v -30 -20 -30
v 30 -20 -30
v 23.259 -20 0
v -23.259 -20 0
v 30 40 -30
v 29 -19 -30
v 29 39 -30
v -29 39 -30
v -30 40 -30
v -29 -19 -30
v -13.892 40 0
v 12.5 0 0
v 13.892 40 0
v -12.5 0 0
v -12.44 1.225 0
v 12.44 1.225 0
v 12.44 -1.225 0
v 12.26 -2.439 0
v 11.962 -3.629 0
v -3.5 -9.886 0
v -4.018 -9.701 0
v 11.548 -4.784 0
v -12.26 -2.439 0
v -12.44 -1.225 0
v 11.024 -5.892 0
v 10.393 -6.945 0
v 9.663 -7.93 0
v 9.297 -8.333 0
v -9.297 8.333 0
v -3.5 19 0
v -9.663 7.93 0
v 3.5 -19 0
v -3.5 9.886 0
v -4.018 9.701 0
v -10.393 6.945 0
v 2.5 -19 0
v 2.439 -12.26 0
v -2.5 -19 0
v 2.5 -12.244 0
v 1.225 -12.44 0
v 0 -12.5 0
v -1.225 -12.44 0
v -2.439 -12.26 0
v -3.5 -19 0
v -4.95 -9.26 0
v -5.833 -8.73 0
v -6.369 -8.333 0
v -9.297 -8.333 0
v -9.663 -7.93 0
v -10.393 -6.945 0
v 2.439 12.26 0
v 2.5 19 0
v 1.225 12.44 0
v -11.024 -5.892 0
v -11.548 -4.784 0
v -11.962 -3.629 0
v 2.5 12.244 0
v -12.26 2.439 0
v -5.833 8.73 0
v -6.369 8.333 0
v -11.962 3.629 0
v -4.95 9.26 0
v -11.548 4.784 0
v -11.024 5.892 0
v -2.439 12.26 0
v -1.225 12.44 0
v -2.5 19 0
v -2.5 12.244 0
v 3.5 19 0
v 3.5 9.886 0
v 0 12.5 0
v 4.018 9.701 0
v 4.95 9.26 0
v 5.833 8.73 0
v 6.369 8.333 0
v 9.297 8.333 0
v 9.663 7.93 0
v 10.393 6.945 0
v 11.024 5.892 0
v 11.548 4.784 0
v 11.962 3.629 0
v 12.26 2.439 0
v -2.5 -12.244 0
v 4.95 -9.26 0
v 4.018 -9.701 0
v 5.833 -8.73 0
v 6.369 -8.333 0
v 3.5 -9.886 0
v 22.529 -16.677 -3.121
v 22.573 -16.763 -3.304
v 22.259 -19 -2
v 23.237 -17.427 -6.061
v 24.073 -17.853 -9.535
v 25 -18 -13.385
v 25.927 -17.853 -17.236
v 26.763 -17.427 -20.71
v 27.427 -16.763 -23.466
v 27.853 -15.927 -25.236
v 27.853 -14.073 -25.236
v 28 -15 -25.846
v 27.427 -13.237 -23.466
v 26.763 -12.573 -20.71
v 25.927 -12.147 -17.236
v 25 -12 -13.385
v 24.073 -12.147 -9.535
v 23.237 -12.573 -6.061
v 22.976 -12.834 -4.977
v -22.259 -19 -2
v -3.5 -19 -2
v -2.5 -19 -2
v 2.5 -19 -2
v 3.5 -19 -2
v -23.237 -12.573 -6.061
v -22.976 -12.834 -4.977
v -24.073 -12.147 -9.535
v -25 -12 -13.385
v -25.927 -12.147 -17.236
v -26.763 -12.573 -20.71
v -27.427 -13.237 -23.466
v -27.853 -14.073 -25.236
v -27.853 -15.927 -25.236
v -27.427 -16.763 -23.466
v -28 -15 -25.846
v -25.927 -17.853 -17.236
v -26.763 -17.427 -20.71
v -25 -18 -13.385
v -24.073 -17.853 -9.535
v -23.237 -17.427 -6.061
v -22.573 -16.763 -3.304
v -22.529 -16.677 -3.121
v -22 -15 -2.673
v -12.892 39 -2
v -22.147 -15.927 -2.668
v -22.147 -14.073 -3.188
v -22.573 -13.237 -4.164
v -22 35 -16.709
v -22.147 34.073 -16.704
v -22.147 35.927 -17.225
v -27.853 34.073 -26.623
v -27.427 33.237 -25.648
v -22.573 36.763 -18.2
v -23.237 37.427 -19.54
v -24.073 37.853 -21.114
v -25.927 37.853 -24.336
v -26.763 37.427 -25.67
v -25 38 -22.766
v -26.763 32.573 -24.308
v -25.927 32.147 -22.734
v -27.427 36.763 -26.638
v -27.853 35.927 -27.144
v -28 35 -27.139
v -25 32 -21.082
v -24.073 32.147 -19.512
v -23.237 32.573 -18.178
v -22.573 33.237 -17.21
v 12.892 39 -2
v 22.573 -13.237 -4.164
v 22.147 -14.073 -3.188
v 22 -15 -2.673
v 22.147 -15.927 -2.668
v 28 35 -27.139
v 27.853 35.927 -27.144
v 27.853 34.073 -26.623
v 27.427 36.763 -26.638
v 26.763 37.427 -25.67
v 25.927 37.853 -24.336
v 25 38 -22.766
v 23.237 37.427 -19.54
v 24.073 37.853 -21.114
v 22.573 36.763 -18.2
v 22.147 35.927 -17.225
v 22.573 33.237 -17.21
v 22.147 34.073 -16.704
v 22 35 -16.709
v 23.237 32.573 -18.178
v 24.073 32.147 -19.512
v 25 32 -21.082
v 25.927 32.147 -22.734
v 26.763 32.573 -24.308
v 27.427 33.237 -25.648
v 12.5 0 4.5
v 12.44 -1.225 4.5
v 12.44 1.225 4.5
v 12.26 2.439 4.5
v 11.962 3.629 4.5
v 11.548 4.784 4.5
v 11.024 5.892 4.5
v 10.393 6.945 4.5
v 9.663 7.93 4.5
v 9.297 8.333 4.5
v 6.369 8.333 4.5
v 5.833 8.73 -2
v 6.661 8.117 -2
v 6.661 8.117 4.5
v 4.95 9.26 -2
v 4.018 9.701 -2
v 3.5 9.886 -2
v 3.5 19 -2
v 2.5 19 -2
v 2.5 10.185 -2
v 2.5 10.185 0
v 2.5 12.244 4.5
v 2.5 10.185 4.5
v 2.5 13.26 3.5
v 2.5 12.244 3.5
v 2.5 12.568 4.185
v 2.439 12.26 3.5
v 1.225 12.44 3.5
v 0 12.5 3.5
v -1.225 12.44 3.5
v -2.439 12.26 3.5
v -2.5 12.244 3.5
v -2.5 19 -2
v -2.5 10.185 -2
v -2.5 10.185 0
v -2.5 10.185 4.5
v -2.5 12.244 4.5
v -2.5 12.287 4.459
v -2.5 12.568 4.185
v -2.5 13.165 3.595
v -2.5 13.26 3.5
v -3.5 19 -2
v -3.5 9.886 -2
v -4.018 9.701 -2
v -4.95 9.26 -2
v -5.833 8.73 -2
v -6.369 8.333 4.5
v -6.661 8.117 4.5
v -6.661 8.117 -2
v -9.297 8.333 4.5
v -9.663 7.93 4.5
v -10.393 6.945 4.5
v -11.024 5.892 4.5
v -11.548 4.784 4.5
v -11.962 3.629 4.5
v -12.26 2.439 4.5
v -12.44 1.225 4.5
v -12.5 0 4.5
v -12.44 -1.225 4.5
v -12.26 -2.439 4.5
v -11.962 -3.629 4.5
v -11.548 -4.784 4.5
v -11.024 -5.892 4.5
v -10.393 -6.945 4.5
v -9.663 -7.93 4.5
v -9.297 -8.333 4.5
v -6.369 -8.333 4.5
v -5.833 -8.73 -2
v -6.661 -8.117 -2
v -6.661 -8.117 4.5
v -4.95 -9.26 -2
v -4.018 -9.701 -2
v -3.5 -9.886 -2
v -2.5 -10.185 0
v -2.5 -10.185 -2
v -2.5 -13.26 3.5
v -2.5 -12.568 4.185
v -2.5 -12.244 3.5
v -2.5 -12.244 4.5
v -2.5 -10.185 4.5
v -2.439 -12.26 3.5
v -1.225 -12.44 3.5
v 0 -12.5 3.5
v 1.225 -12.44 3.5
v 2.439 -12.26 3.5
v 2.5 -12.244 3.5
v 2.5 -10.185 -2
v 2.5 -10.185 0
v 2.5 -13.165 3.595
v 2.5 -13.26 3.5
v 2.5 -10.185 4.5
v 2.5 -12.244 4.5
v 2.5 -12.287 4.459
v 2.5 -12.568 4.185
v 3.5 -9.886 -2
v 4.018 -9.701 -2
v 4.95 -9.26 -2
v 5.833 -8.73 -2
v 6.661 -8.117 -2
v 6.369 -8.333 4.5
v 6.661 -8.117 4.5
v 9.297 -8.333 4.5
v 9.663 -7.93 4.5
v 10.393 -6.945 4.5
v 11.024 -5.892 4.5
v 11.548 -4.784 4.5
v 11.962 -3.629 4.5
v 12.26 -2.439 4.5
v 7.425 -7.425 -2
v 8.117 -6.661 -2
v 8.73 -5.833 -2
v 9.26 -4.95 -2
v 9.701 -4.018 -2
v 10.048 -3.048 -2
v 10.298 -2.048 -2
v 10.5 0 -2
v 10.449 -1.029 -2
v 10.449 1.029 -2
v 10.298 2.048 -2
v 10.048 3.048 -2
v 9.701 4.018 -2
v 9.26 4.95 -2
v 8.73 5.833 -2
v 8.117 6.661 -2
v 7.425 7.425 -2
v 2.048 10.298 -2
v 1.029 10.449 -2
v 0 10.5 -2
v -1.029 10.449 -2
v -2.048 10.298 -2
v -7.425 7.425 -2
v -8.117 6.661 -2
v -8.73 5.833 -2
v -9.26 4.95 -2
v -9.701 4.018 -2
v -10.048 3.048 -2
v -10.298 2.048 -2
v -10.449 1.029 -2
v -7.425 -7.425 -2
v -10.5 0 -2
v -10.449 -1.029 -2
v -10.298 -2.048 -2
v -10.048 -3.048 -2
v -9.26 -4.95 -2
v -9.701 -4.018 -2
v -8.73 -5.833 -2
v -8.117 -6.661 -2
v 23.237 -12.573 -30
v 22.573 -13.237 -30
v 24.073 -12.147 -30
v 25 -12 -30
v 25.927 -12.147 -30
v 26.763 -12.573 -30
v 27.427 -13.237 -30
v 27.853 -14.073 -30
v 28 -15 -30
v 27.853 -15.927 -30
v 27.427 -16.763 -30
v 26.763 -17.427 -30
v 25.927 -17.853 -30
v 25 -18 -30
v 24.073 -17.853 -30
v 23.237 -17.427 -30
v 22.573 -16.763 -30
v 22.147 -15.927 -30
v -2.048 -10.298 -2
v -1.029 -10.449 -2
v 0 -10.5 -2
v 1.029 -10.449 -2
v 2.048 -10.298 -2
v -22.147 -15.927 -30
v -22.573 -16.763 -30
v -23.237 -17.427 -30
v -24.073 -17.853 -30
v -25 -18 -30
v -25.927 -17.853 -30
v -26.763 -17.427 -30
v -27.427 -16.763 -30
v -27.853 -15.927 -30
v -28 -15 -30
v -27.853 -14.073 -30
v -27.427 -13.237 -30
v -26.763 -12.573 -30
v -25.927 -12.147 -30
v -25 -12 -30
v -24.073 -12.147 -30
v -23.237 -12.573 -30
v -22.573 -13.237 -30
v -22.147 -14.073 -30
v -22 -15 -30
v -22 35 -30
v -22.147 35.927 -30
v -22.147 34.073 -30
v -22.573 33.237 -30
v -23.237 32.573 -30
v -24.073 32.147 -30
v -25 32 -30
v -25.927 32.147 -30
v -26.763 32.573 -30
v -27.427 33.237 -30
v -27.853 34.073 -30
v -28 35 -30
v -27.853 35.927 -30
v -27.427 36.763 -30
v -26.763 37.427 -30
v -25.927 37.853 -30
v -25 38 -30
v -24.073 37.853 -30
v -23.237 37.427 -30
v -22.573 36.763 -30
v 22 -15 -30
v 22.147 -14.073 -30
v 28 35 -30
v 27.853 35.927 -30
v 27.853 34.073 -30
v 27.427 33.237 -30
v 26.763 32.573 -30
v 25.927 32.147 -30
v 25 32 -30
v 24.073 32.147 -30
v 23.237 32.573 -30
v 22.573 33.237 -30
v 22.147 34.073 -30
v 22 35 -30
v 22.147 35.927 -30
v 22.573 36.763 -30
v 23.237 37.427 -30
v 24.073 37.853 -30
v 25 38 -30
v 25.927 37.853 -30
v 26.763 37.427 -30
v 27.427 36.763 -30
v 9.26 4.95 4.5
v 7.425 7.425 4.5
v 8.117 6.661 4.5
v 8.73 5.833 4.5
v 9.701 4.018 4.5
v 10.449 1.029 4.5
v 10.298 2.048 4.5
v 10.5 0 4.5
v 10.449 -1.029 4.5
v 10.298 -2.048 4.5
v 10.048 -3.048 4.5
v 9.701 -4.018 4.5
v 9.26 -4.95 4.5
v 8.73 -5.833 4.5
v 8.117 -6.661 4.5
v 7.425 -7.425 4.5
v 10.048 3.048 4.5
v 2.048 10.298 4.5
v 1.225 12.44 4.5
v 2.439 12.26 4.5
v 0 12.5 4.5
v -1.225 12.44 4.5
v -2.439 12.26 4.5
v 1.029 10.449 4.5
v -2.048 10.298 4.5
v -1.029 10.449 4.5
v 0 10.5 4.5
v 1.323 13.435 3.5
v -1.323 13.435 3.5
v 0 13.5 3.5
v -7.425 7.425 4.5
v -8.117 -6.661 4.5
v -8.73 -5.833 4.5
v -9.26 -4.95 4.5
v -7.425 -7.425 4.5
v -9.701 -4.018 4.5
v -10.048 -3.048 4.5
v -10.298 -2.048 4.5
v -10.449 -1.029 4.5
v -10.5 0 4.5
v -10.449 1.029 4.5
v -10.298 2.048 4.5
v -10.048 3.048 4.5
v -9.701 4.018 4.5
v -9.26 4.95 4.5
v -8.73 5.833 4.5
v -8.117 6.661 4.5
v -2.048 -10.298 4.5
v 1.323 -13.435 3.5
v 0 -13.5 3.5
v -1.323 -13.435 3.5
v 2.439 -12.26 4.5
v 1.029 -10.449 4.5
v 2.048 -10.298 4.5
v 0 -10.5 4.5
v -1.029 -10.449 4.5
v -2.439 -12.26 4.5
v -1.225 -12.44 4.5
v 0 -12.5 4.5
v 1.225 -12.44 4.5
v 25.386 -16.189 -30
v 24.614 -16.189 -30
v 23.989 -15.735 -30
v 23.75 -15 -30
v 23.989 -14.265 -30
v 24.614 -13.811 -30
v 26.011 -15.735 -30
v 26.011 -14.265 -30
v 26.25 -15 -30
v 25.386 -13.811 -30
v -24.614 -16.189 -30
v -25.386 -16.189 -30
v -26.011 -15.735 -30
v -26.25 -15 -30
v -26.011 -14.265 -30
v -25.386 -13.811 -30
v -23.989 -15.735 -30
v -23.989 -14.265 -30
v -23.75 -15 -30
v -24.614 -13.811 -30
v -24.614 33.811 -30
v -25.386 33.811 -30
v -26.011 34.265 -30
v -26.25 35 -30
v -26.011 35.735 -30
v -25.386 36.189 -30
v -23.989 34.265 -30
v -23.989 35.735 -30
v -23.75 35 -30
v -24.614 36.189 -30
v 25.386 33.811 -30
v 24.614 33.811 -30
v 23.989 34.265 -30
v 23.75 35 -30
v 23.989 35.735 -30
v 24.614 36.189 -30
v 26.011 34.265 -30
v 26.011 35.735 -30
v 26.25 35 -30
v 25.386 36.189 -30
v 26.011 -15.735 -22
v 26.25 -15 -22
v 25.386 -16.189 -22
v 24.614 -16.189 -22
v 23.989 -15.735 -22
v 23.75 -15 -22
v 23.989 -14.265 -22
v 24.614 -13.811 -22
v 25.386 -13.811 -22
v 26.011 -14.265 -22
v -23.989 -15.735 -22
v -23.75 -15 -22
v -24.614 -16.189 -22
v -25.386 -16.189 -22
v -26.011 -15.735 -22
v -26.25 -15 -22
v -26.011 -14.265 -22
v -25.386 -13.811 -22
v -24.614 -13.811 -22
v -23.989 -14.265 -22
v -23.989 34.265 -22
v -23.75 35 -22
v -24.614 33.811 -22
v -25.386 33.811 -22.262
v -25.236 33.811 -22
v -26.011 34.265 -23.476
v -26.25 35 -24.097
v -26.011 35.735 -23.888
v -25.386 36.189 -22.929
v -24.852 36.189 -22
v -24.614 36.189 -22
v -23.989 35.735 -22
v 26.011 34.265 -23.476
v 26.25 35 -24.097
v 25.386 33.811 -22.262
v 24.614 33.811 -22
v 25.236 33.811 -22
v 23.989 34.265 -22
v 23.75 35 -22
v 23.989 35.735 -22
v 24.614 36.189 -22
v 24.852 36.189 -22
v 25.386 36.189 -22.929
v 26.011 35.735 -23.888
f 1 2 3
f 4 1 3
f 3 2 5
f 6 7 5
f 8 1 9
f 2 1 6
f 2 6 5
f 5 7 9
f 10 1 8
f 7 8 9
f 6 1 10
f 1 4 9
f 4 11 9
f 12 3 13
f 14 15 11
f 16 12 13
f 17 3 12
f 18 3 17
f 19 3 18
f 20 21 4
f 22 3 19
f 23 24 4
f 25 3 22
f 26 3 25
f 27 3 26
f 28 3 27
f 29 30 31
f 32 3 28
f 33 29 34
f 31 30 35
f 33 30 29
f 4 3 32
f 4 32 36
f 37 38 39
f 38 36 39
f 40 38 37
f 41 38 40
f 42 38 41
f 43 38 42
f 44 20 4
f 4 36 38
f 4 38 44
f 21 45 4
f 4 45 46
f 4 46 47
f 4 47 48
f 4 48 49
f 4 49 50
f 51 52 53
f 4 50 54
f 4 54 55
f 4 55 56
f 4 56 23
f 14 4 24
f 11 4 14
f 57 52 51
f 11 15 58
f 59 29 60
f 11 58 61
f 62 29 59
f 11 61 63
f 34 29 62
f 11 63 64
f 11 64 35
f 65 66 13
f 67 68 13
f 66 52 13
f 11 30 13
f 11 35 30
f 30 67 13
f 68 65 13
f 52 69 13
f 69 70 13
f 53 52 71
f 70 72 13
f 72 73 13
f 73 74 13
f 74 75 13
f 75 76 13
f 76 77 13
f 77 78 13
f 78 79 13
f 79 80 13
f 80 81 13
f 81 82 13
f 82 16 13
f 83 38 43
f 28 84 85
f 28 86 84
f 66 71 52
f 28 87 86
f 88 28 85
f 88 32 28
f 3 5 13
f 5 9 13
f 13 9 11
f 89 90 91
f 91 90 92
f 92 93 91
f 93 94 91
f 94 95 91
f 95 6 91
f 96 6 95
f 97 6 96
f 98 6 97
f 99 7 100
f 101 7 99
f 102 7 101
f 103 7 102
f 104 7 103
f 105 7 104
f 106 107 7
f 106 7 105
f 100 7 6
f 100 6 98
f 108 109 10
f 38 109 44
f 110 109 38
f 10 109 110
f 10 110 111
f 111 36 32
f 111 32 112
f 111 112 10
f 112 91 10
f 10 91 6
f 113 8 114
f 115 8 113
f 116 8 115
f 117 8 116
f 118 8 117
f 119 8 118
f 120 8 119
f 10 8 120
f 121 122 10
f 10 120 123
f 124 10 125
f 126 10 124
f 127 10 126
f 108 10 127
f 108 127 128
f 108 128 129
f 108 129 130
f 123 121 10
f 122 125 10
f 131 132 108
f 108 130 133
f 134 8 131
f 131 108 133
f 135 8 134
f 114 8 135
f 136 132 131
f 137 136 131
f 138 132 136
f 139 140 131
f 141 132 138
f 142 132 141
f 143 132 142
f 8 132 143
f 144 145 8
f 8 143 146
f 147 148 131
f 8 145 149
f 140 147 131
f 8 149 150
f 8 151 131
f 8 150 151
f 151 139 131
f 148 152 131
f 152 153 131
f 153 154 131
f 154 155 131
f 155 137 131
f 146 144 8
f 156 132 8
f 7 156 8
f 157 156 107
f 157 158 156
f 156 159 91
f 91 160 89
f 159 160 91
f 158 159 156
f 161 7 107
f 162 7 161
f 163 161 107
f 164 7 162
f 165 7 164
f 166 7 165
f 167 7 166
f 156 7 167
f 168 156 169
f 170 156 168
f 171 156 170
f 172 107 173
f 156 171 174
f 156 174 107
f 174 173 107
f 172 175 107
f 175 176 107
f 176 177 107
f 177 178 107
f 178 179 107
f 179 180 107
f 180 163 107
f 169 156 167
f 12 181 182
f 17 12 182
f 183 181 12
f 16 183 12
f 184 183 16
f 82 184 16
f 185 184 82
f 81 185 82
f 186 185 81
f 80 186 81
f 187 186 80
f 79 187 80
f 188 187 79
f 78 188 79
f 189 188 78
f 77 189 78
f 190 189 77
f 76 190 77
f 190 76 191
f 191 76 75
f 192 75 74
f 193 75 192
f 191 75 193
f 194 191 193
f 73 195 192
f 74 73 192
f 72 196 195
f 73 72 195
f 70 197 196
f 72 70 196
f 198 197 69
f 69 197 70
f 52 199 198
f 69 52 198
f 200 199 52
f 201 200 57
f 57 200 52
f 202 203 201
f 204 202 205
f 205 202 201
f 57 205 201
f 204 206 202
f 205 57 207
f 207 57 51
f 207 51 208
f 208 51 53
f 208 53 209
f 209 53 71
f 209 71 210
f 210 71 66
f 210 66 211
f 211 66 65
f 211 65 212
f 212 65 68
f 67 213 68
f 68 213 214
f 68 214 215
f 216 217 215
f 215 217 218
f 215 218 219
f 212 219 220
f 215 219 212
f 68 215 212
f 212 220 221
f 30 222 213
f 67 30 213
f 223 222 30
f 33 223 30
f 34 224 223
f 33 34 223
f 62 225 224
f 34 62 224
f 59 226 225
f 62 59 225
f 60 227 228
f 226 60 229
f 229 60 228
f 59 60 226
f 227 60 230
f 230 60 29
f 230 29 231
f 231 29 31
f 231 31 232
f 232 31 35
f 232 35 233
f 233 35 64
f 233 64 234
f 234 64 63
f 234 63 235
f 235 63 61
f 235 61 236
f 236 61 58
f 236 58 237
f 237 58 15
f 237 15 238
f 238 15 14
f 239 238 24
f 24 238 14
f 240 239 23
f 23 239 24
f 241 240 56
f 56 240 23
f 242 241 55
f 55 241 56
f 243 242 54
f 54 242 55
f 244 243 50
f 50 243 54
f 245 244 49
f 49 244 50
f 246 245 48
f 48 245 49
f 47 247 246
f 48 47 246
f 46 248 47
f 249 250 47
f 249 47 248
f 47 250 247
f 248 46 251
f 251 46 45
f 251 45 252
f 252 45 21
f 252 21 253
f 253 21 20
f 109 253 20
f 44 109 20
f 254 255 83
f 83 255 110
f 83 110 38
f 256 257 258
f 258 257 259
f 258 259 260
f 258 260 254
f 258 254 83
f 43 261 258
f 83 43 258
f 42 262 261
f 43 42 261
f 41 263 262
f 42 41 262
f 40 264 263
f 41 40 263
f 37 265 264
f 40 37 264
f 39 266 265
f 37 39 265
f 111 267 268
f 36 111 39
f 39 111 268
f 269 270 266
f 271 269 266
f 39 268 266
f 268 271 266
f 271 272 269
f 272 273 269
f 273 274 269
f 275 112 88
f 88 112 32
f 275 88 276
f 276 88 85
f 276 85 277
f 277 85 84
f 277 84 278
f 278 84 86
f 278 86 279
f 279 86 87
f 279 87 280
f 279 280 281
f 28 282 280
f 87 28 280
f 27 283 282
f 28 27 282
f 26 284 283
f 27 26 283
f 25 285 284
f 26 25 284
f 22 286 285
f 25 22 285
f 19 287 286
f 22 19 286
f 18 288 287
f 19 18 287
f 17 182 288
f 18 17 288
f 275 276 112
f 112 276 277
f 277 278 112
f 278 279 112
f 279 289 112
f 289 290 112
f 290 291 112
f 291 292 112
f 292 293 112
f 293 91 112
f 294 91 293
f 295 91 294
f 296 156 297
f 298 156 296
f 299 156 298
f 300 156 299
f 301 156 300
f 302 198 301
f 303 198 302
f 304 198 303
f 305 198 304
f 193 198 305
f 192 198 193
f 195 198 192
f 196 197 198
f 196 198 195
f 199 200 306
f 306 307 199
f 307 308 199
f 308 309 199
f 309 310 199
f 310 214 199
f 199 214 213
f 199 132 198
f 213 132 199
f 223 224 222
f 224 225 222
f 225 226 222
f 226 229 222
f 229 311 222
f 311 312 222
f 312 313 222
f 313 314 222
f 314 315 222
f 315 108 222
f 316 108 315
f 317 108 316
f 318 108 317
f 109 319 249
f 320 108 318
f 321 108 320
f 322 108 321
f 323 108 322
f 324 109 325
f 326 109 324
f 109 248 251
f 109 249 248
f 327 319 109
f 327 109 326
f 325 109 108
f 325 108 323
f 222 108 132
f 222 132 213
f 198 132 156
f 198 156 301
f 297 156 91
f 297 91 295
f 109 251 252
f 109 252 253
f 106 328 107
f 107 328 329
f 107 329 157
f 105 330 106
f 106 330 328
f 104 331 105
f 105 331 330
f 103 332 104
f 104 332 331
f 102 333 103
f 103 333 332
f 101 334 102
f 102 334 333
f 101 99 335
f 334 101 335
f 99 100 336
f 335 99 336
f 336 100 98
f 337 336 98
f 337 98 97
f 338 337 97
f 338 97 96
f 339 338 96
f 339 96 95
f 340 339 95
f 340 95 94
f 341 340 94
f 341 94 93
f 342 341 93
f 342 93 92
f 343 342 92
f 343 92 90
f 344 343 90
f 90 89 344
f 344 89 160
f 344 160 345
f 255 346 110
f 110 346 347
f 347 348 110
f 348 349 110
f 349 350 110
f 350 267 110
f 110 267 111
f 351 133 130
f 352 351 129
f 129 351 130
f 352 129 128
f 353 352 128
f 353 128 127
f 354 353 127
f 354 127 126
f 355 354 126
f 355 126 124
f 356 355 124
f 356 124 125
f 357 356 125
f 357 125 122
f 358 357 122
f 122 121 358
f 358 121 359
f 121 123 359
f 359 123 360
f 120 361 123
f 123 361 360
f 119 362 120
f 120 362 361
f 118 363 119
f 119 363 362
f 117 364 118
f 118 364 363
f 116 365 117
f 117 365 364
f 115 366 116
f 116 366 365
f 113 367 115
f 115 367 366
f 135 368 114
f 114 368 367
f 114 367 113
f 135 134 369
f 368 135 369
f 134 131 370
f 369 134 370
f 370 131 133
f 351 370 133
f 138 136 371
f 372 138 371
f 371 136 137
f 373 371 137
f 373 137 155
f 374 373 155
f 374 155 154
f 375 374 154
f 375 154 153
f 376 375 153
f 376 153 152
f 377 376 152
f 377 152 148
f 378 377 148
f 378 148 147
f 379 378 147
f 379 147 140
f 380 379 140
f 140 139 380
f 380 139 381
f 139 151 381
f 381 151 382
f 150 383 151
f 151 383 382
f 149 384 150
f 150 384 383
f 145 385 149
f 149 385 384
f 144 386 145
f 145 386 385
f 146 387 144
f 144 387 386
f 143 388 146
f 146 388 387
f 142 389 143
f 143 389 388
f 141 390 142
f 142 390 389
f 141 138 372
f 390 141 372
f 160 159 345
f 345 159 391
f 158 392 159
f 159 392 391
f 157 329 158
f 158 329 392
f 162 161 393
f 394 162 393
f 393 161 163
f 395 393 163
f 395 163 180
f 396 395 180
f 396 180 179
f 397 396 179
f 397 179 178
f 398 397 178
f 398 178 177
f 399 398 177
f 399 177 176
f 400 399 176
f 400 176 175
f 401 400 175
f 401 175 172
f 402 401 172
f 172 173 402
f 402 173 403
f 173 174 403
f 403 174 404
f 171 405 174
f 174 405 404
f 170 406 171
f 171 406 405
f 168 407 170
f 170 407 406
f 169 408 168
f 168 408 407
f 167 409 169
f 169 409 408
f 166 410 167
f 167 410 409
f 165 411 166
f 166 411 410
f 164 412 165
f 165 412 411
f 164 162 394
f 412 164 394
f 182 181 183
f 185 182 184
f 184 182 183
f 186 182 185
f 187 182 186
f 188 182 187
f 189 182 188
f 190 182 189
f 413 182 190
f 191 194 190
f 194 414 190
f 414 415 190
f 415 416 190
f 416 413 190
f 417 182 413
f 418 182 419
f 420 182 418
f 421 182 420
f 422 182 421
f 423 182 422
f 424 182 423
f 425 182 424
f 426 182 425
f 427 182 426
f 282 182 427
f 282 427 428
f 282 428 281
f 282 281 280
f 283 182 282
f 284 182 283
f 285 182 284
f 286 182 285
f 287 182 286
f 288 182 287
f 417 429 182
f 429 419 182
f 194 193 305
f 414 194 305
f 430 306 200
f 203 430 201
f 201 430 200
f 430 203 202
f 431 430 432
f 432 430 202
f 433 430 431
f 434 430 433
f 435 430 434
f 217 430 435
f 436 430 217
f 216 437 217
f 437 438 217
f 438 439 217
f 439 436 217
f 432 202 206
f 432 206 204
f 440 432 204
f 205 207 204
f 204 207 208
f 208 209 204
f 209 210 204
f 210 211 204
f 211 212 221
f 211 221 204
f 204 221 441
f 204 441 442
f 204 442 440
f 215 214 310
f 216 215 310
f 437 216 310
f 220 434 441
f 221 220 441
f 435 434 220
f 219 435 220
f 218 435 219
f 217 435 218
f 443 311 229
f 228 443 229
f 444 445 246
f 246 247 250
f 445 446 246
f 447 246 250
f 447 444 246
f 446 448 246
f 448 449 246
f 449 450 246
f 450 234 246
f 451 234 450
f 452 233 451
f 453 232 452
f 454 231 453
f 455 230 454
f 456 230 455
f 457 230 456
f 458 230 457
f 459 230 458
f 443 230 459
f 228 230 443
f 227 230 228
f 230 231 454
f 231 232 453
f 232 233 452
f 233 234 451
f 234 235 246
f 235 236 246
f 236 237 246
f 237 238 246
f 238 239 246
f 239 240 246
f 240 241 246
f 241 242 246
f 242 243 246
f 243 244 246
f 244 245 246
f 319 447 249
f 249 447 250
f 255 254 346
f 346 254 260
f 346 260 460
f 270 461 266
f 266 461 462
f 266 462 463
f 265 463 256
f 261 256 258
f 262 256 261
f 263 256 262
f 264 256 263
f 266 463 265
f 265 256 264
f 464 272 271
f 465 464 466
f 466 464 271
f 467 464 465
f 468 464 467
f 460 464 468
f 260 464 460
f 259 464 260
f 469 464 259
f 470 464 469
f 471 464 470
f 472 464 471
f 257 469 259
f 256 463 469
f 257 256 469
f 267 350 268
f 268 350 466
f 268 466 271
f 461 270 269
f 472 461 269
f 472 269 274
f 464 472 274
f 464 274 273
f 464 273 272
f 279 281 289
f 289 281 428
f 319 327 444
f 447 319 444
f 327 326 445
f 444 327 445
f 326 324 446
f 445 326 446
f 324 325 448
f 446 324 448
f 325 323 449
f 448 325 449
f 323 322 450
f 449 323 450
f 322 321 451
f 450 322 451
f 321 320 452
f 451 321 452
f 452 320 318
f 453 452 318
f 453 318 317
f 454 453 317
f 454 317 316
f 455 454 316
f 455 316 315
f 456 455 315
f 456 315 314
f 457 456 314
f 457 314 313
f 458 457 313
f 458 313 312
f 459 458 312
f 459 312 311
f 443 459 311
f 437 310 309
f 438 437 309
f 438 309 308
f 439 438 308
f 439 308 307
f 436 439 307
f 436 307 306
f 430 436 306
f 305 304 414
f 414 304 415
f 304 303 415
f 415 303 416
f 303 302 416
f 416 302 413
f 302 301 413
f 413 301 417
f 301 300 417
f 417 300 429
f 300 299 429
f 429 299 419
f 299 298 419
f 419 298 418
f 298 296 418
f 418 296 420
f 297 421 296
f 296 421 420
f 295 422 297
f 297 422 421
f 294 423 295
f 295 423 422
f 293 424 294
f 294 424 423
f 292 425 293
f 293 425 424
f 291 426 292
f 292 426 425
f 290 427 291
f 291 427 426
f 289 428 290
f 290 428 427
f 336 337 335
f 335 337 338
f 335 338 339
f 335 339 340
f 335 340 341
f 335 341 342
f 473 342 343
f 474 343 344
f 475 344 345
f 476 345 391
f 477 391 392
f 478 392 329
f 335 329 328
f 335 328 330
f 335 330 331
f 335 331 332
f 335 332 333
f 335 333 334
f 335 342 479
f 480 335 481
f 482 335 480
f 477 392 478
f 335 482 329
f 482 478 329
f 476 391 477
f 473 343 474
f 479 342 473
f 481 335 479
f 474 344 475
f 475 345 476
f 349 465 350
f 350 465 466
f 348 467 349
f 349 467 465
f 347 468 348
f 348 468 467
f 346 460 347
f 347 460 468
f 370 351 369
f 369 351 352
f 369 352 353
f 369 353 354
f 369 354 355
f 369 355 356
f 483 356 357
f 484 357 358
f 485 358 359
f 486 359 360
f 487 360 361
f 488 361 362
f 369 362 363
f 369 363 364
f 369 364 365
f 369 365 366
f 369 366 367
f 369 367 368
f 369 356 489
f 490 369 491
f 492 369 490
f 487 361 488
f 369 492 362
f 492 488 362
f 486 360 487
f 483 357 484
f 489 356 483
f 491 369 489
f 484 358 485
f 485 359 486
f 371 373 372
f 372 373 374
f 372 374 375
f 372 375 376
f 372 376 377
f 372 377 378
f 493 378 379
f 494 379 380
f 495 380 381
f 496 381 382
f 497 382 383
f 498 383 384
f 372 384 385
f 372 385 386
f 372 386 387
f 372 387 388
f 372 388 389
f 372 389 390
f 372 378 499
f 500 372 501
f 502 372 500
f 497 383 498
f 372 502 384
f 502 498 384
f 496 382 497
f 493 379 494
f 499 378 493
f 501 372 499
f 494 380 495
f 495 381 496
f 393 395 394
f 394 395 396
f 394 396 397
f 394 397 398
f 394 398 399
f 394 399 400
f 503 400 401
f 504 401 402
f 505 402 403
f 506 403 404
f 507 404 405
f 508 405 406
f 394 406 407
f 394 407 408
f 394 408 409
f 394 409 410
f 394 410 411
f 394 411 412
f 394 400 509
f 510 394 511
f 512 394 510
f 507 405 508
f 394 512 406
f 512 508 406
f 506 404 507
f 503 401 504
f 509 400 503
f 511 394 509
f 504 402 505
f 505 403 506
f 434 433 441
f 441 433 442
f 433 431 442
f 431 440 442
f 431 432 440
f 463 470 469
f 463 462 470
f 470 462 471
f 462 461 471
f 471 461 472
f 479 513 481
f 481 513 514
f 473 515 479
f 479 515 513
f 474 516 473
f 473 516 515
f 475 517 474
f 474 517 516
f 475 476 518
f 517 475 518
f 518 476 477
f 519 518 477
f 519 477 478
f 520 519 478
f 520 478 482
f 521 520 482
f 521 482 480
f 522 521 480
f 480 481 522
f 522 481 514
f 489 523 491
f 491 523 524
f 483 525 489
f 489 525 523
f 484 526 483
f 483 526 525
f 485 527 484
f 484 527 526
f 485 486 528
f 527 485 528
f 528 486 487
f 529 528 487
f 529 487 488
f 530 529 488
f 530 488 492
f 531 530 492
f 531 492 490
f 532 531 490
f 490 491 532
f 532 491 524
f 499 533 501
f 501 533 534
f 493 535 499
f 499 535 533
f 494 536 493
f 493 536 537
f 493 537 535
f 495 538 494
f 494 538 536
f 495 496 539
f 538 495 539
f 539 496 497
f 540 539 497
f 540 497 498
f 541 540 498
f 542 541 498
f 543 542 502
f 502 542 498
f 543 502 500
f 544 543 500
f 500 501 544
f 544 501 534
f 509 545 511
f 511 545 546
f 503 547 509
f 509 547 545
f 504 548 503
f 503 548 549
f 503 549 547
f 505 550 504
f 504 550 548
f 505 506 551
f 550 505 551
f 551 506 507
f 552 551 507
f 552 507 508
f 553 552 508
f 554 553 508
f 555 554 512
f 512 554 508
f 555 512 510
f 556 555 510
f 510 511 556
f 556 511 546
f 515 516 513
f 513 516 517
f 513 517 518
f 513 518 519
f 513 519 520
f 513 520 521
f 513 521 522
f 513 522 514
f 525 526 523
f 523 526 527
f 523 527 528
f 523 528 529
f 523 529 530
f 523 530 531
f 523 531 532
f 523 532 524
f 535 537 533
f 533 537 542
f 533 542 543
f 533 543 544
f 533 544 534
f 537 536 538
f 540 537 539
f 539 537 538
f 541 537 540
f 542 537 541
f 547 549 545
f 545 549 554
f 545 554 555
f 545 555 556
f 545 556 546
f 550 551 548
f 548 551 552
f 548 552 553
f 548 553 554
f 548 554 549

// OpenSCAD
// Hoverlay II brighntness booster mk1
// licensed under GPL V3
// all infos at iamnotachoice.com/hoverlay-2
// all dimensions in mm

// BASIC CONFIGURATION

fan_size=60; // select your fan size here from 40, 60 or 80 (other values won't work!)

walls=1;	// thickness of printed walls
base=2;	// thickness of printed baseplate (must be a bit thicker because we're printing bridges here)
fan_dist=30;	// distance between fan and hoverlay side panel
fan_screw_diameter=2.5; // how large are your screws
fan_screw_length=8;	// how long are your screws (should be 8mm screws)
fan_screw_nipple_diameter=6; // how strong are the screw nipples ;)
fan_screw_nipple_length=fan_dist;
tube_walls=2;
tube_length=3.5;

// EXTENDED CONFIGURATION

hole_diameter=25;
snappy_diameter=27;
snappy_width=5;
snappy_clearance=1;
snappy_bendable=38;

// CONSTANTS

fan_screw_dist_80mm=71.5;
fan_screw_dist_60mm=50;
fan_screw_dist_40mm=32;

housing_p0_40mm=[-17.014,20,0];
housing_p1_40mm=[17.014,20,0];
housing_p0_60mm=[-13.892,40,0];
housing_p1_60mm=[13.892,40,0];
housing_p0_80mm=[-10.77,60,0];
housing_p1_80mm=[10.77,60,0];
housing_p2=[23.259,-20,0];
housing_p3=[-23.259,-20,0];

// PREPROCESSING

housing_p0i_40mm=[housing_p0_40mm[0]+walls,housing_p0_40mm[1]-walls,base];
housing_p1i_40mm=[housing_p1_40mm[0]-walls,housing_p1_40mm[1]-walls,base];

housing_p0i_60mm=[housing_p0_60mm[0]+walls,housing_p0_60mm[1]-walls,base];
housing_p1i_60mm=[housing_p1_60mm[0]-walls,housing_p1_60mm[1]-walls,base];

housing_p0i_80mm=[housing_p0_80mm[0]+walls,housing_p0_80mm[1]-walls,base];
housing_p1i_80mm=[housing_p1_80mm[0]-walls,housing_p1_80mm[1]-walls,base];

housing_p2i=[housing_p2[0]-walls,housing_p2[1]+walls,base];
housing_p3i=[housing_p3[0]+walls,housing_p3[1]+walls,base];

fan_center=[(housing_p2[0]+housing_p3[0])/2,(housing_p2[1]+housing_p3[1])/2+fan_size/2,fan_dist];

fan_p0=[fan_center[0]-fan_size/2,fan_center[1]+fan_size/2,fan_center[2]];
fan_p1=[fan_center[0]+fan_size/2,fan_center[1]+fan_size/2,fan_center[2]];
fan_p2=[fan_center[0]+fan_size/2,fan_center[1]-fan_size/2,fan_center[2]];
fan_p3=[fan_center[0]-fan_size/2,fan_center[1]-fan_size/2,fan_center[2]];

fan_p0i=[fan_center[0]-fan_size/2+walls,fan_center[1]+fan_size/2-walls,fan_center[2]];
fan_p1i=[fan_center[0]+fan_size/2-walls,fan_center[1]+fan_size/2-walls,fan_center[2]];
fan_p2i=[fan_center[0]+fan_size/2-walls,fan_center[1]-fan_size/2+walls,fan_center[2]];
fan_p3i=[fan_center[0]-fan_size/2+walls,fan_center[1]-fan_size/2+walls,fan_center[2]];

// TEH CODE

module tube_cutout(){
	translate([0,0,base/2])
		cylinder(r=hole_diameter/2-tube_walls,h=base,center=true, $fn=64);
}

module tube(){
	translate([0,0,-tube_length/2-walls/2])
			intersection(){
				difference(){
					cylinder(r=hole_diameter/2,h=tube_length+walls,center=true, $fn=64);
					cylinder(r=hole_diameter/2-tube_walls,h=tube_length+walls,center=true, $fn=64);
				}
			cube([hole_diameter,2/3*hole_diameter,tube_length+walls],center=true);
		}
}

module snappy(){
		intersection(){
			union(){
				translate([0,0,-tube_length-walls/2])
					difference(){
						cylinder(r1=hole_diameter/2,r2=snappy_diameter/2,h=walls,center=true, $fn=64);
						cylinder(r=hole_diameter/2-tube_walls,h=walls,center=true, $fn=64);
					}
				translate([0,0,-tube_length/2-walls/2])
					difference(){
						cylinder(r=hole_diameter/2,h=tube_length+walls,center=true, $fn=64);
						cylinder(r=hole_diameter/2-tube_walls,h=tube_length+walls,center=true, $fn=64);
					}
			}
			translate([0,0,-tube_length/2-walls/2])
			cube([snappy_width,snappy_diameter,tube_length+walls],center=true);
		}
}

module snappy_cutout(){
	translate([snappy_width/2+snappy_clearance/2,0,base/2])
		cube([snappy_clearance,snappy_bendable,base],center=true);
	translate([-snappy_width/2-snappy_clearance/2,0,base/2])
		cube([snappy_clearance,snappy_bendable,base],center=true);
	
}


module duct(){
	difference(){
		union(){
			difference(){
				if (fan_size==40){
					difference(){
						outer_duct(housing_p0_40mm, housing_p1_40mm);
						inner_duct(housing_p0i_40mm, housing_p1i_40mm);
					}
				} else if (fan_size==60){
					difference(){
						outer_duct(housing_p0_60mm, housing_p1_60mm);
						inner_duct(housing_p0i_60mm, housing_p1i_60mm);
					}
				} else if (fan_size==80){
					difference(){
						outer_duct(housing_p0_80mm, housing_p1_80mm);
						inner_duct(housing_p0i_80mm, housing_p1i_80mm);
					}
				}
				tube_cutout();
				snappy_cutout();
			}
			if (fan_size==40){
				screw_nipples(fan_screw_dist_40mm);
			} else if (fan_size==60){
				screw_nipples(fan_screw_dist_60mm);
			} else if (fan_size==80){
				screw_nipples(fan_screw_dist_80mm);
			}
		}
		if (fan_size==40){
			screw_cutouts(fan_screw_dist_40mm);
		} else if (fan_size==60){
			screw_cutouts(fan_screw_dist_60mm);
		} else if (fan_size==80){
			screw_cutouts(fan_screw_dist_80mm);
		}
	}
}

module inner_duct(housing_p0i, housing_p1i){
	polyhedron(
		points=[
			housing_p0i,
			housing_p1i,
			housing_p2i,
			housing_p3i,
			fan_p0i,
			fan_p1i,
			fan_p2i,
			fan_p3i
		],
		faces=[
			[2,1,0], 	// mount
			[3,2,0],
			[4,5,6],		// fan
			[4,6,7],
			[0,4,3],		// left
			[3,4,7],
			[2,5,1],		// right
			[6,5,2],
			[0,1,4],		// top
			[5,4,1],
			[2,3,7],		// bottom
			[2,7,6]
		]
	);
}

module outer_duct(housing_p0, housing_p1){
	polyhedron(
		points=[
			housing_p0,
			housing_p1,
			housing_p2,
			housing_p3,
			fan_p0,
			fan_p1,
			fan_p2,
			fan_p3
		],
		faces=[
			[2,1,0], 	// mount
			[3,2,0],
			[4,5,6],		// fan
			[4,6,7],
			[0,4,3],		// left
			[3,4,7],
			[2,5,1],		// right
			[6,5,2],
			[0,1,4],		// top
			[5,4,1],
			[2,3,7],		// bottom
			[2,7,6]
		]
	);
}

module screw_cutouts(fan_screw_dist){
	intersection(){
		if (fan_size==40){
			inner_duct(housing_p0i_40mm, housing_p1i_40mm);
		} else if (fan_size==60){
			inner_duct(housing_p0i_60mm, housing_p1i_60mm);
		} else if (fan_size==80){
			inner_duct(housing_p0i_80mm, housing_p1i_80mm);
		}
		union(){
			translate(fan_center){
				translate([-fan_screw_dist/2,fan_screw_dist/2,-fan_screw_length/2])
					cylinder(r=fan_screw_diameter/2, h=fan_screw_length, center=true, $fn=10);
				translate([fan_screw_dist/2,fan_screw_dist/2,-fan_screw_length/2])
					cylinder(r=fan_screw_diameter/2, h=fan_screw_length, center=true, $fn=10);
				translate([-fan_screw_dist/2,-fan_screw_dist/2,-fan_screw_length/2])
					cylinder(r=fan_screw_diameter/2, h=fan_screw_length, center=true, $fn=10);
				translate([fan_screw_dist/2,-fan_screw_dist/2,-fan_screw_length/2])
					cylinder(r=fan_screw_diameter/2, h=fan_screw_length, center=true, $fn=10);
			}
		}
	}
}
module screw_nipples(fan_screw_dist){
	intersection(){
		if (fan_size==40){
			inner_duct(housing_p0i_40mm, housing_p1i_40mm);
		} else if (fan_size==60){
			inner_duct(housing_p0i_60mm, housing_p1i_60mm);
		} else if (fan_size==80){
			inner_duct(housing_p0i_80mm, housing_p1i_80mm);
		}
		union(){
			translate(fan_center){
				translate([-fan_screw_dist/2,fan_screw_dist/2,-fan_screw_nipple_length/2])
					cylinder(r=fan_screw_nipple_diameter/2, h=fan_screw_nipple_length, center=true, $fn=20);
				translate([fan_screw_dist/2,fan_screw_dist/2,-fan_screw_nipple_length/2])
					cylinder(r=fan_screw_nipple_diameter/2, h=fan_screw_nipple_length, center=true, $fn=20);
				translate([-fan_screw_dist/2,-fan_screw_dist/2,-fan_screw_nipple_length/2])
					cylinder(r=fan_screw_nipple_diameter/2, h=fan_screw_nipple_length, center=true, $fn=20);
				translate([fan_screw_dist/2,-fan_screw_dist/2,-fan_screw_nipple_length/2])
					cylinder(r=fan_screw_nipple_diameter/2, h=fan_screw_nipple_length, center=true, $fn=20);
			}
		}
	}
}

module booster(){
	union(){
		duct();
		tube();
		snappy();
	}
}

rotate([0,180,0])
	booster();
